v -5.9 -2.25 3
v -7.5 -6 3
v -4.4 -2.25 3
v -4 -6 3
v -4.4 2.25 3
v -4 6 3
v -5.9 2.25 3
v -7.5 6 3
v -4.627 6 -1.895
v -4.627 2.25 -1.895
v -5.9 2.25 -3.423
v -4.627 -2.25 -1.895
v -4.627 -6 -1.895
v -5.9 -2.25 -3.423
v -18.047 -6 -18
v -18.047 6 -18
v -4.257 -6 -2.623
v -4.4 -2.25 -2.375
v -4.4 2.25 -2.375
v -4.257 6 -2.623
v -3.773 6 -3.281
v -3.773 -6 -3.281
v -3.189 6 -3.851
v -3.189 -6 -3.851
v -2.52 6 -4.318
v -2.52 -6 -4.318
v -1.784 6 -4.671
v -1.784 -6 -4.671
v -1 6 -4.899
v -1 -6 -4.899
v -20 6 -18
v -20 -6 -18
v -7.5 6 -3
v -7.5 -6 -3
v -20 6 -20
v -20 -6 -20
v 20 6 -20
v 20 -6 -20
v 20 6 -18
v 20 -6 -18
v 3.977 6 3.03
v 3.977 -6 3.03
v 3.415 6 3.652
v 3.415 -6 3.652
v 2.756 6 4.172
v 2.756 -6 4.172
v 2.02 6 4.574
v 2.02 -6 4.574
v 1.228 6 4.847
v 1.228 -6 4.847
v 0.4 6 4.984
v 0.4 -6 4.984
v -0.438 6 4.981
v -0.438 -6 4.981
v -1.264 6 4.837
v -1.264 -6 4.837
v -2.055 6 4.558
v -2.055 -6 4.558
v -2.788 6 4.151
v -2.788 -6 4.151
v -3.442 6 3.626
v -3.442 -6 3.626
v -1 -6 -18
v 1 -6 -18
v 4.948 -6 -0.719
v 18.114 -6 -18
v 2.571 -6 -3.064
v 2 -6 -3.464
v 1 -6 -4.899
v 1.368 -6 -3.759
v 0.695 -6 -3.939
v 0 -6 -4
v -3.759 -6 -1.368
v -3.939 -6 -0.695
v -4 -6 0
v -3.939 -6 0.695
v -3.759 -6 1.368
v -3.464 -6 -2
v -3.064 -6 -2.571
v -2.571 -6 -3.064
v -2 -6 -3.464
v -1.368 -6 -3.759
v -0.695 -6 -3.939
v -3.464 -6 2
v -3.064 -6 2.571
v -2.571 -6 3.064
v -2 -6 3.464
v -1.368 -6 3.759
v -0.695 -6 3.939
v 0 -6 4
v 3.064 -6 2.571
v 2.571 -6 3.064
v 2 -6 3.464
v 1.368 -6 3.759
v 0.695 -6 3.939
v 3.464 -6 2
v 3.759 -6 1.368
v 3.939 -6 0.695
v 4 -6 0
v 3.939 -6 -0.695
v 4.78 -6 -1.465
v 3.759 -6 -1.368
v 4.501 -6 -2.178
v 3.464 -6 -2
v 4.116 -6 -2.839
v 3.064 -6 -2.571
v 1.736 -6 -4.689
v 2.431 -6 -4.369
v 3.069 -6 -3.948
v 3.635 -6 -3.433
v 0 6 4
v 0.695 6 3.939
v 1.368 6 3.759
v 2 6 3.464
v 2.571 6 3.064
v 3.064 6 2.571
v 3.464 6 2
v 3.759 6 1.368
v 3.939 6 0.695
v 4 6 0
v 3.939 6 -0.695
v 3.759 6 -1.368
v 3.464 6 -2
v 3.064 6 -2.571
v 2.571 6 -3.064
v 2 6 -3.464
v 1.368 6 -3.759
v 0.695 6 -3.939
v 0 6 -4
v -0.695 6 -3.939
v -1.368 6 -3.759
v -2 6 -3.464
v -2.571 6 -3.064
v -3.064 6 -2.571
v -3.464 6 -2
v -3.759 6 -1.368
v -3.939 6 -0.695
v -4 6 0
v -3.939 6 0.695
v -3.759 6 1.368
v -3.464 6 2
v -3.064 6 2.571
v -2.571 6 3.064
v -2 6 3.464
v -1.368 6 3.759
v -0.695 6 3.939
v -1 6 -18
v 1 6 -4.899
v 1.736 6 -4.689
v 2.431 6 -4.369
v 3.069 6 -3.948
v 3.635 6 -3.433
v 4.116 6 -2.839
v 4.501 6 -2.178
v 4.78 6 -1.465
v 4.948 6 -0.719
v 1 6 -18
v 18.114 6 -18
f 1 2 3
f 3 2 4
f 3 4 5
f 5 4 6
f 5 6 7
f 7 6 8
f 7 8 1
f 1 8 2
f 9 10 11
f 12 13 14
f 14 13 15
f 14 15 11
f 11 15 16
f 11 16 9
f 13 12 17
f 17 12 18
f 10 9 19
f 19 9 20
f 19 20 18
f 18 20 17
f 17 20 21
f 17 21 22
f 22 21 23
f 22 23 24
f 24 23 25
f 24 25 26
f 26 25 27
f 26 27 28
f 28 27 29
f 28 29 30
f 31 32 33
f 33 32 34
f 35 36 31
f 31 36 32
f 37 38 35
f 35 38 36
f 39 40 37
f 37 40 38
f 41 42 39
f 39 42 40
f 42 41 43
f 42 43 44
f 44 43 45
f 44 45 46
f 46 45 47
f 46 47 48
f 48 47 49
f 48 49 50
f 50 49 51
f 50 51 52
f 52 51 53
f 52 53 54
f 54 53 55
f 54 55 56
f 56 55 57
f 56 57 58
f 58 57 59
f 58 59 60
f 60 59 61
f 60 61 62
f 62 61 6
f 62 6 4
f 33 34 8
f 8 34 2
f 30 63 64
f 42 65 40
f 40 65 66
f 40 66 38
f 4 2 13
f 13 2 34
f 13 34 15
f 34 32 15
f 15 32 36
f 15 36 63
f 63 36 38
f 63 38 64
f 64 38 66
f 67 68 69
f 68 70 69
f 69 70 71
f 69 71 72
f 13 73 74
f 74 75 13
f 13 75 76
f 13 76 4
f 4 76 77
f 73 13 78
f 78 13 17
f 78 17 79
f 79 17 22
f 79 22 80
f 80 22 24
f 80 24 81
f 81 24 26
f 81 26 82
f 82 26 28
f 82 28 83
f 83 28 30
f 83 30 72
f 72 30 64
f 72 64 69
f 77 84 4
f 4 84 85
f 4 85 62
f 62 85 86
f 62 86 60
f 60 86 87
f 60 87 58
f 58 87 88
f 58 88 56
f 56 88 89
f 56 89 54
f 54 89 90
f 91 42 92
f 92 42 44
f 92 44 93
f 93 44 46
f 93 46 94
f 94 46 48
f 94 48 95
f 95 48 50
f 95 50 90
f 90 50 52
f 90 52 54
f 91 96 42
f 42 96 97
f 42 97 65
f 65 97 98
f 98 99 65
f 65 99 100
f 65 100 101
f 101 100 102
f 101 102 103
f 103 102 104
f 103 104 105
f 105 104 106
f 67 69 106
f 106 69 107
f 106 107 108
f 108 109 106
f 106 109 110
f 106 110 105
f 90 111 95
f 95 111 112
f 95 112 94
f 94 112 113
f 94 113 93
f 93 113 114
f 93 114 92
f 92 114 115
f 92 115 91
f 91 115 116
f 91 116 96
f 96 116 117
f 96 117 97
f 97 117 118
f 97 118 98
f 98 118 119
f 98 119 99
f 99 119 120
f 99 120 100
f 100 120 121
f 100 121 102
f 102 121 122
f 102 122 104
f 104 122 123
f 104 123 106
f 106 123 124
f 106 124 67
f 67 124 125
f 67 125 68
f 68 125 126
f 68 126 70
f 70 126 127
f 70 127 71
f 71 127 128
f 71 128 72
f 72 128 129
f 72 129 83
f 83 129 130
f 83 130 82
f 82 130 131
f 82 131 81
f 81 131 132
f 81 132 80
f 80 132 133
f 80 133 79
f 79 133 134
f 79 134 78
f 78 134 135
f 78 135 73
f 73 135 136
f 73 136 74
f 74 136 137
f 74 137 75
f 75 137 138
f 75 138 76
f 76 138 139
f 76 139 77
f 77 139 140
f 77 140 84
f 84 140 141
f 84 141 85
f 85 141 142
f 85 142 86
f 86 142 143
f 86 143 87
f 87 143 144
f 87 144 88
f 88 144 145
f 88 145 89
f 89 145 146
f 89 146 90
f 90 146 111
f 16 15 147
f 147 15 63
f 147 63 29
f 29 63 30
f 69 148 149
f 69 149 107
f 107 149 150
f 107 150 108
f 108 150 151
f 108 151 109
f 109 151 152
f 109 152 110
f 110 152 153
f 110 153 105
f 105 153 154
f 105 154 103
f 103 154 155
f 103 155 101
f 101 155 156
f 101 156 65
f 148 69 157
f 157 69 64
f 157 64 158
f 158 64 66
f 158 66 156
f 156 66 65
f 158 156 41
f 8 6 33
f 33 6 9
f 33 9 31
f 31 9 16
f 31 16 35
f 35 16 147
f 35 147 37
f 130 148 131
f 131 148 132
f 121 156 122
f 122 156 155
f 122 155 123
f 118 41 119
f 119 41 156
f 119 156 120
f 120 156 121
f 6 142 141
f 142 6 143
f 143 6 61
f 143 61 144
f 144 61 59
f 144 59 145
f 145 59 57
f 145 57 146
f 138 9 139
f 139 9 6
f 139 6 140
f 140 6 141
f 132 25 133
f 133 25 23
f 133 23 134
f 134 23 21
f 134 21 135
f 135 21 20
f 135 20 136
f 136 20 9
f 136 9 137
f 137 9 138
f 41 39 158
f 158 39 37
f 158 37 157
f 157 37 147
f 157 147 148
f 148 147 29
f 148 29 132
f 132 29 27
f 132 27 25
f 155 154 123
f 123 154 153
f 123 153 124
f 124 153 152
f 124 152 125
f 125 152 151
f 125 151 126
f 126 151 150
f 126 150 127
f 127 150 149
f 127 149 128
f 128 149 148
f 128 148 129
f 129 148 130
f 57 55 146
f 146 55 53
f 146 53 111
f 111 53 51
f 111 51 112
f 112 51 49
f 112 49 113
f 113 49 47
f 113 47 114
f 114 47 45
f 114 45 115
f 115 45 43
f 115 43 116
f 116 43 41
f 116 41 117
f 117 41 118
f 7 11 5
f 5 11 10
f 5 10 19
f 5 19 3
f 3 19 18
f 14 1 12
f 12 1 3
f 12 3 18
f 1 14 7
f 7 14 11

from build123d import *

# Parameters (mm, degrees)
BOSS_EXTRUDE1_DEPTH      = 6
BOSS_EXTRUDE1_DEPTH_BACK = 6
SKETCH1_R                = 4
CUT_EXTRUDE1_REACH       = 33.064
SKETCH2_W                = 1.5
SKETCH2_H                = 4.5


with BuildPart() as part:
    # Sketch1 → Boss-Extrude1 (new, two sides: drawn at the far end of the back side and taken through both)
    with BuildSketch(Plane(origin=(0, 0, 0), x_dir=(1, 0, 0), z_dir=(0, 1, 0)).offset(-BOSS_EXTRUDE1_DEPTH_BACK)):
        with BuildLine():
            Line((-7.5, 3), (-7.5, -3))
            Line((-7.5, -3), (-4, -3))
            ThreePointArc((-4, -3), (-0.01892542, -4.999964183), (3.977175044, -3.030194493))
            Line((3.977175044, -3.030194493), (20, 18))
            Line((20, 18), (20, 20))
            Line((20, 20), (-20, 20))
            Line((-20, 20), (-20, 18))
            Line((-20, 18), (-7.5, 3))
        make_face()
        Circle(SKETCH1_R, mode=Mode.SUBTRACT)
        with BuildLine():
            Line((-18.047437581, 18), (-1, 18))
            Line((-1, 18), (-1, 4.898979486))
            ThreePointArc((-1, 4.898979486), (-3.189184695, 3.850857175), (-4.626858427, 1.895305015))
            Line((-4.626858427, 1.895305015), (-18.047437581, 18))
        make_face(mode=Mode.SUBTRACT)
        with BuildLine():
            Line((1, 4.898979486), (1, 18))
            Line((1, 18), (18.114239399, 18))
            Line((18.114239399, 18), (4.948014241, 0.719134947))
            ThreePointArc((4.948014241, 0.719134947), (3.634899372, 3.433293835), (1, 4.898979486))
        make_face(mode=Mode.SUBTRACT)
    extrude(amount=BOSS_EXTRUDE1_DEPTH + BOSS_EXTRUDE1_DEPTH_BACK)

    # Sketch2 → Cut-Extrude1 (cut, up to next)
    with BuildSketch(Plane(origin=(0, 0, 3), x_dir=(-1, 0, 0), z_dir=(0, 0, -1)), mode=Mode.PRIVATE) as cut_extrude1_sk1:
        with Locations((5.15, 0)):
            Rectangle(SKETCH2_W, SKETCH2_H)
    cut_extrude1_tool1 = extrude(cut_extrude1_sk1.sketch, amount=CUT_EXTRUDE1_REACH, mode=Mode.PRIVATE) & part.part
    add(cut_extrude1_tool1.solids().sort_by_distance((-5.15, 0, 3))[0], mode=Mode.SUBTRACT)


solid = part.part
